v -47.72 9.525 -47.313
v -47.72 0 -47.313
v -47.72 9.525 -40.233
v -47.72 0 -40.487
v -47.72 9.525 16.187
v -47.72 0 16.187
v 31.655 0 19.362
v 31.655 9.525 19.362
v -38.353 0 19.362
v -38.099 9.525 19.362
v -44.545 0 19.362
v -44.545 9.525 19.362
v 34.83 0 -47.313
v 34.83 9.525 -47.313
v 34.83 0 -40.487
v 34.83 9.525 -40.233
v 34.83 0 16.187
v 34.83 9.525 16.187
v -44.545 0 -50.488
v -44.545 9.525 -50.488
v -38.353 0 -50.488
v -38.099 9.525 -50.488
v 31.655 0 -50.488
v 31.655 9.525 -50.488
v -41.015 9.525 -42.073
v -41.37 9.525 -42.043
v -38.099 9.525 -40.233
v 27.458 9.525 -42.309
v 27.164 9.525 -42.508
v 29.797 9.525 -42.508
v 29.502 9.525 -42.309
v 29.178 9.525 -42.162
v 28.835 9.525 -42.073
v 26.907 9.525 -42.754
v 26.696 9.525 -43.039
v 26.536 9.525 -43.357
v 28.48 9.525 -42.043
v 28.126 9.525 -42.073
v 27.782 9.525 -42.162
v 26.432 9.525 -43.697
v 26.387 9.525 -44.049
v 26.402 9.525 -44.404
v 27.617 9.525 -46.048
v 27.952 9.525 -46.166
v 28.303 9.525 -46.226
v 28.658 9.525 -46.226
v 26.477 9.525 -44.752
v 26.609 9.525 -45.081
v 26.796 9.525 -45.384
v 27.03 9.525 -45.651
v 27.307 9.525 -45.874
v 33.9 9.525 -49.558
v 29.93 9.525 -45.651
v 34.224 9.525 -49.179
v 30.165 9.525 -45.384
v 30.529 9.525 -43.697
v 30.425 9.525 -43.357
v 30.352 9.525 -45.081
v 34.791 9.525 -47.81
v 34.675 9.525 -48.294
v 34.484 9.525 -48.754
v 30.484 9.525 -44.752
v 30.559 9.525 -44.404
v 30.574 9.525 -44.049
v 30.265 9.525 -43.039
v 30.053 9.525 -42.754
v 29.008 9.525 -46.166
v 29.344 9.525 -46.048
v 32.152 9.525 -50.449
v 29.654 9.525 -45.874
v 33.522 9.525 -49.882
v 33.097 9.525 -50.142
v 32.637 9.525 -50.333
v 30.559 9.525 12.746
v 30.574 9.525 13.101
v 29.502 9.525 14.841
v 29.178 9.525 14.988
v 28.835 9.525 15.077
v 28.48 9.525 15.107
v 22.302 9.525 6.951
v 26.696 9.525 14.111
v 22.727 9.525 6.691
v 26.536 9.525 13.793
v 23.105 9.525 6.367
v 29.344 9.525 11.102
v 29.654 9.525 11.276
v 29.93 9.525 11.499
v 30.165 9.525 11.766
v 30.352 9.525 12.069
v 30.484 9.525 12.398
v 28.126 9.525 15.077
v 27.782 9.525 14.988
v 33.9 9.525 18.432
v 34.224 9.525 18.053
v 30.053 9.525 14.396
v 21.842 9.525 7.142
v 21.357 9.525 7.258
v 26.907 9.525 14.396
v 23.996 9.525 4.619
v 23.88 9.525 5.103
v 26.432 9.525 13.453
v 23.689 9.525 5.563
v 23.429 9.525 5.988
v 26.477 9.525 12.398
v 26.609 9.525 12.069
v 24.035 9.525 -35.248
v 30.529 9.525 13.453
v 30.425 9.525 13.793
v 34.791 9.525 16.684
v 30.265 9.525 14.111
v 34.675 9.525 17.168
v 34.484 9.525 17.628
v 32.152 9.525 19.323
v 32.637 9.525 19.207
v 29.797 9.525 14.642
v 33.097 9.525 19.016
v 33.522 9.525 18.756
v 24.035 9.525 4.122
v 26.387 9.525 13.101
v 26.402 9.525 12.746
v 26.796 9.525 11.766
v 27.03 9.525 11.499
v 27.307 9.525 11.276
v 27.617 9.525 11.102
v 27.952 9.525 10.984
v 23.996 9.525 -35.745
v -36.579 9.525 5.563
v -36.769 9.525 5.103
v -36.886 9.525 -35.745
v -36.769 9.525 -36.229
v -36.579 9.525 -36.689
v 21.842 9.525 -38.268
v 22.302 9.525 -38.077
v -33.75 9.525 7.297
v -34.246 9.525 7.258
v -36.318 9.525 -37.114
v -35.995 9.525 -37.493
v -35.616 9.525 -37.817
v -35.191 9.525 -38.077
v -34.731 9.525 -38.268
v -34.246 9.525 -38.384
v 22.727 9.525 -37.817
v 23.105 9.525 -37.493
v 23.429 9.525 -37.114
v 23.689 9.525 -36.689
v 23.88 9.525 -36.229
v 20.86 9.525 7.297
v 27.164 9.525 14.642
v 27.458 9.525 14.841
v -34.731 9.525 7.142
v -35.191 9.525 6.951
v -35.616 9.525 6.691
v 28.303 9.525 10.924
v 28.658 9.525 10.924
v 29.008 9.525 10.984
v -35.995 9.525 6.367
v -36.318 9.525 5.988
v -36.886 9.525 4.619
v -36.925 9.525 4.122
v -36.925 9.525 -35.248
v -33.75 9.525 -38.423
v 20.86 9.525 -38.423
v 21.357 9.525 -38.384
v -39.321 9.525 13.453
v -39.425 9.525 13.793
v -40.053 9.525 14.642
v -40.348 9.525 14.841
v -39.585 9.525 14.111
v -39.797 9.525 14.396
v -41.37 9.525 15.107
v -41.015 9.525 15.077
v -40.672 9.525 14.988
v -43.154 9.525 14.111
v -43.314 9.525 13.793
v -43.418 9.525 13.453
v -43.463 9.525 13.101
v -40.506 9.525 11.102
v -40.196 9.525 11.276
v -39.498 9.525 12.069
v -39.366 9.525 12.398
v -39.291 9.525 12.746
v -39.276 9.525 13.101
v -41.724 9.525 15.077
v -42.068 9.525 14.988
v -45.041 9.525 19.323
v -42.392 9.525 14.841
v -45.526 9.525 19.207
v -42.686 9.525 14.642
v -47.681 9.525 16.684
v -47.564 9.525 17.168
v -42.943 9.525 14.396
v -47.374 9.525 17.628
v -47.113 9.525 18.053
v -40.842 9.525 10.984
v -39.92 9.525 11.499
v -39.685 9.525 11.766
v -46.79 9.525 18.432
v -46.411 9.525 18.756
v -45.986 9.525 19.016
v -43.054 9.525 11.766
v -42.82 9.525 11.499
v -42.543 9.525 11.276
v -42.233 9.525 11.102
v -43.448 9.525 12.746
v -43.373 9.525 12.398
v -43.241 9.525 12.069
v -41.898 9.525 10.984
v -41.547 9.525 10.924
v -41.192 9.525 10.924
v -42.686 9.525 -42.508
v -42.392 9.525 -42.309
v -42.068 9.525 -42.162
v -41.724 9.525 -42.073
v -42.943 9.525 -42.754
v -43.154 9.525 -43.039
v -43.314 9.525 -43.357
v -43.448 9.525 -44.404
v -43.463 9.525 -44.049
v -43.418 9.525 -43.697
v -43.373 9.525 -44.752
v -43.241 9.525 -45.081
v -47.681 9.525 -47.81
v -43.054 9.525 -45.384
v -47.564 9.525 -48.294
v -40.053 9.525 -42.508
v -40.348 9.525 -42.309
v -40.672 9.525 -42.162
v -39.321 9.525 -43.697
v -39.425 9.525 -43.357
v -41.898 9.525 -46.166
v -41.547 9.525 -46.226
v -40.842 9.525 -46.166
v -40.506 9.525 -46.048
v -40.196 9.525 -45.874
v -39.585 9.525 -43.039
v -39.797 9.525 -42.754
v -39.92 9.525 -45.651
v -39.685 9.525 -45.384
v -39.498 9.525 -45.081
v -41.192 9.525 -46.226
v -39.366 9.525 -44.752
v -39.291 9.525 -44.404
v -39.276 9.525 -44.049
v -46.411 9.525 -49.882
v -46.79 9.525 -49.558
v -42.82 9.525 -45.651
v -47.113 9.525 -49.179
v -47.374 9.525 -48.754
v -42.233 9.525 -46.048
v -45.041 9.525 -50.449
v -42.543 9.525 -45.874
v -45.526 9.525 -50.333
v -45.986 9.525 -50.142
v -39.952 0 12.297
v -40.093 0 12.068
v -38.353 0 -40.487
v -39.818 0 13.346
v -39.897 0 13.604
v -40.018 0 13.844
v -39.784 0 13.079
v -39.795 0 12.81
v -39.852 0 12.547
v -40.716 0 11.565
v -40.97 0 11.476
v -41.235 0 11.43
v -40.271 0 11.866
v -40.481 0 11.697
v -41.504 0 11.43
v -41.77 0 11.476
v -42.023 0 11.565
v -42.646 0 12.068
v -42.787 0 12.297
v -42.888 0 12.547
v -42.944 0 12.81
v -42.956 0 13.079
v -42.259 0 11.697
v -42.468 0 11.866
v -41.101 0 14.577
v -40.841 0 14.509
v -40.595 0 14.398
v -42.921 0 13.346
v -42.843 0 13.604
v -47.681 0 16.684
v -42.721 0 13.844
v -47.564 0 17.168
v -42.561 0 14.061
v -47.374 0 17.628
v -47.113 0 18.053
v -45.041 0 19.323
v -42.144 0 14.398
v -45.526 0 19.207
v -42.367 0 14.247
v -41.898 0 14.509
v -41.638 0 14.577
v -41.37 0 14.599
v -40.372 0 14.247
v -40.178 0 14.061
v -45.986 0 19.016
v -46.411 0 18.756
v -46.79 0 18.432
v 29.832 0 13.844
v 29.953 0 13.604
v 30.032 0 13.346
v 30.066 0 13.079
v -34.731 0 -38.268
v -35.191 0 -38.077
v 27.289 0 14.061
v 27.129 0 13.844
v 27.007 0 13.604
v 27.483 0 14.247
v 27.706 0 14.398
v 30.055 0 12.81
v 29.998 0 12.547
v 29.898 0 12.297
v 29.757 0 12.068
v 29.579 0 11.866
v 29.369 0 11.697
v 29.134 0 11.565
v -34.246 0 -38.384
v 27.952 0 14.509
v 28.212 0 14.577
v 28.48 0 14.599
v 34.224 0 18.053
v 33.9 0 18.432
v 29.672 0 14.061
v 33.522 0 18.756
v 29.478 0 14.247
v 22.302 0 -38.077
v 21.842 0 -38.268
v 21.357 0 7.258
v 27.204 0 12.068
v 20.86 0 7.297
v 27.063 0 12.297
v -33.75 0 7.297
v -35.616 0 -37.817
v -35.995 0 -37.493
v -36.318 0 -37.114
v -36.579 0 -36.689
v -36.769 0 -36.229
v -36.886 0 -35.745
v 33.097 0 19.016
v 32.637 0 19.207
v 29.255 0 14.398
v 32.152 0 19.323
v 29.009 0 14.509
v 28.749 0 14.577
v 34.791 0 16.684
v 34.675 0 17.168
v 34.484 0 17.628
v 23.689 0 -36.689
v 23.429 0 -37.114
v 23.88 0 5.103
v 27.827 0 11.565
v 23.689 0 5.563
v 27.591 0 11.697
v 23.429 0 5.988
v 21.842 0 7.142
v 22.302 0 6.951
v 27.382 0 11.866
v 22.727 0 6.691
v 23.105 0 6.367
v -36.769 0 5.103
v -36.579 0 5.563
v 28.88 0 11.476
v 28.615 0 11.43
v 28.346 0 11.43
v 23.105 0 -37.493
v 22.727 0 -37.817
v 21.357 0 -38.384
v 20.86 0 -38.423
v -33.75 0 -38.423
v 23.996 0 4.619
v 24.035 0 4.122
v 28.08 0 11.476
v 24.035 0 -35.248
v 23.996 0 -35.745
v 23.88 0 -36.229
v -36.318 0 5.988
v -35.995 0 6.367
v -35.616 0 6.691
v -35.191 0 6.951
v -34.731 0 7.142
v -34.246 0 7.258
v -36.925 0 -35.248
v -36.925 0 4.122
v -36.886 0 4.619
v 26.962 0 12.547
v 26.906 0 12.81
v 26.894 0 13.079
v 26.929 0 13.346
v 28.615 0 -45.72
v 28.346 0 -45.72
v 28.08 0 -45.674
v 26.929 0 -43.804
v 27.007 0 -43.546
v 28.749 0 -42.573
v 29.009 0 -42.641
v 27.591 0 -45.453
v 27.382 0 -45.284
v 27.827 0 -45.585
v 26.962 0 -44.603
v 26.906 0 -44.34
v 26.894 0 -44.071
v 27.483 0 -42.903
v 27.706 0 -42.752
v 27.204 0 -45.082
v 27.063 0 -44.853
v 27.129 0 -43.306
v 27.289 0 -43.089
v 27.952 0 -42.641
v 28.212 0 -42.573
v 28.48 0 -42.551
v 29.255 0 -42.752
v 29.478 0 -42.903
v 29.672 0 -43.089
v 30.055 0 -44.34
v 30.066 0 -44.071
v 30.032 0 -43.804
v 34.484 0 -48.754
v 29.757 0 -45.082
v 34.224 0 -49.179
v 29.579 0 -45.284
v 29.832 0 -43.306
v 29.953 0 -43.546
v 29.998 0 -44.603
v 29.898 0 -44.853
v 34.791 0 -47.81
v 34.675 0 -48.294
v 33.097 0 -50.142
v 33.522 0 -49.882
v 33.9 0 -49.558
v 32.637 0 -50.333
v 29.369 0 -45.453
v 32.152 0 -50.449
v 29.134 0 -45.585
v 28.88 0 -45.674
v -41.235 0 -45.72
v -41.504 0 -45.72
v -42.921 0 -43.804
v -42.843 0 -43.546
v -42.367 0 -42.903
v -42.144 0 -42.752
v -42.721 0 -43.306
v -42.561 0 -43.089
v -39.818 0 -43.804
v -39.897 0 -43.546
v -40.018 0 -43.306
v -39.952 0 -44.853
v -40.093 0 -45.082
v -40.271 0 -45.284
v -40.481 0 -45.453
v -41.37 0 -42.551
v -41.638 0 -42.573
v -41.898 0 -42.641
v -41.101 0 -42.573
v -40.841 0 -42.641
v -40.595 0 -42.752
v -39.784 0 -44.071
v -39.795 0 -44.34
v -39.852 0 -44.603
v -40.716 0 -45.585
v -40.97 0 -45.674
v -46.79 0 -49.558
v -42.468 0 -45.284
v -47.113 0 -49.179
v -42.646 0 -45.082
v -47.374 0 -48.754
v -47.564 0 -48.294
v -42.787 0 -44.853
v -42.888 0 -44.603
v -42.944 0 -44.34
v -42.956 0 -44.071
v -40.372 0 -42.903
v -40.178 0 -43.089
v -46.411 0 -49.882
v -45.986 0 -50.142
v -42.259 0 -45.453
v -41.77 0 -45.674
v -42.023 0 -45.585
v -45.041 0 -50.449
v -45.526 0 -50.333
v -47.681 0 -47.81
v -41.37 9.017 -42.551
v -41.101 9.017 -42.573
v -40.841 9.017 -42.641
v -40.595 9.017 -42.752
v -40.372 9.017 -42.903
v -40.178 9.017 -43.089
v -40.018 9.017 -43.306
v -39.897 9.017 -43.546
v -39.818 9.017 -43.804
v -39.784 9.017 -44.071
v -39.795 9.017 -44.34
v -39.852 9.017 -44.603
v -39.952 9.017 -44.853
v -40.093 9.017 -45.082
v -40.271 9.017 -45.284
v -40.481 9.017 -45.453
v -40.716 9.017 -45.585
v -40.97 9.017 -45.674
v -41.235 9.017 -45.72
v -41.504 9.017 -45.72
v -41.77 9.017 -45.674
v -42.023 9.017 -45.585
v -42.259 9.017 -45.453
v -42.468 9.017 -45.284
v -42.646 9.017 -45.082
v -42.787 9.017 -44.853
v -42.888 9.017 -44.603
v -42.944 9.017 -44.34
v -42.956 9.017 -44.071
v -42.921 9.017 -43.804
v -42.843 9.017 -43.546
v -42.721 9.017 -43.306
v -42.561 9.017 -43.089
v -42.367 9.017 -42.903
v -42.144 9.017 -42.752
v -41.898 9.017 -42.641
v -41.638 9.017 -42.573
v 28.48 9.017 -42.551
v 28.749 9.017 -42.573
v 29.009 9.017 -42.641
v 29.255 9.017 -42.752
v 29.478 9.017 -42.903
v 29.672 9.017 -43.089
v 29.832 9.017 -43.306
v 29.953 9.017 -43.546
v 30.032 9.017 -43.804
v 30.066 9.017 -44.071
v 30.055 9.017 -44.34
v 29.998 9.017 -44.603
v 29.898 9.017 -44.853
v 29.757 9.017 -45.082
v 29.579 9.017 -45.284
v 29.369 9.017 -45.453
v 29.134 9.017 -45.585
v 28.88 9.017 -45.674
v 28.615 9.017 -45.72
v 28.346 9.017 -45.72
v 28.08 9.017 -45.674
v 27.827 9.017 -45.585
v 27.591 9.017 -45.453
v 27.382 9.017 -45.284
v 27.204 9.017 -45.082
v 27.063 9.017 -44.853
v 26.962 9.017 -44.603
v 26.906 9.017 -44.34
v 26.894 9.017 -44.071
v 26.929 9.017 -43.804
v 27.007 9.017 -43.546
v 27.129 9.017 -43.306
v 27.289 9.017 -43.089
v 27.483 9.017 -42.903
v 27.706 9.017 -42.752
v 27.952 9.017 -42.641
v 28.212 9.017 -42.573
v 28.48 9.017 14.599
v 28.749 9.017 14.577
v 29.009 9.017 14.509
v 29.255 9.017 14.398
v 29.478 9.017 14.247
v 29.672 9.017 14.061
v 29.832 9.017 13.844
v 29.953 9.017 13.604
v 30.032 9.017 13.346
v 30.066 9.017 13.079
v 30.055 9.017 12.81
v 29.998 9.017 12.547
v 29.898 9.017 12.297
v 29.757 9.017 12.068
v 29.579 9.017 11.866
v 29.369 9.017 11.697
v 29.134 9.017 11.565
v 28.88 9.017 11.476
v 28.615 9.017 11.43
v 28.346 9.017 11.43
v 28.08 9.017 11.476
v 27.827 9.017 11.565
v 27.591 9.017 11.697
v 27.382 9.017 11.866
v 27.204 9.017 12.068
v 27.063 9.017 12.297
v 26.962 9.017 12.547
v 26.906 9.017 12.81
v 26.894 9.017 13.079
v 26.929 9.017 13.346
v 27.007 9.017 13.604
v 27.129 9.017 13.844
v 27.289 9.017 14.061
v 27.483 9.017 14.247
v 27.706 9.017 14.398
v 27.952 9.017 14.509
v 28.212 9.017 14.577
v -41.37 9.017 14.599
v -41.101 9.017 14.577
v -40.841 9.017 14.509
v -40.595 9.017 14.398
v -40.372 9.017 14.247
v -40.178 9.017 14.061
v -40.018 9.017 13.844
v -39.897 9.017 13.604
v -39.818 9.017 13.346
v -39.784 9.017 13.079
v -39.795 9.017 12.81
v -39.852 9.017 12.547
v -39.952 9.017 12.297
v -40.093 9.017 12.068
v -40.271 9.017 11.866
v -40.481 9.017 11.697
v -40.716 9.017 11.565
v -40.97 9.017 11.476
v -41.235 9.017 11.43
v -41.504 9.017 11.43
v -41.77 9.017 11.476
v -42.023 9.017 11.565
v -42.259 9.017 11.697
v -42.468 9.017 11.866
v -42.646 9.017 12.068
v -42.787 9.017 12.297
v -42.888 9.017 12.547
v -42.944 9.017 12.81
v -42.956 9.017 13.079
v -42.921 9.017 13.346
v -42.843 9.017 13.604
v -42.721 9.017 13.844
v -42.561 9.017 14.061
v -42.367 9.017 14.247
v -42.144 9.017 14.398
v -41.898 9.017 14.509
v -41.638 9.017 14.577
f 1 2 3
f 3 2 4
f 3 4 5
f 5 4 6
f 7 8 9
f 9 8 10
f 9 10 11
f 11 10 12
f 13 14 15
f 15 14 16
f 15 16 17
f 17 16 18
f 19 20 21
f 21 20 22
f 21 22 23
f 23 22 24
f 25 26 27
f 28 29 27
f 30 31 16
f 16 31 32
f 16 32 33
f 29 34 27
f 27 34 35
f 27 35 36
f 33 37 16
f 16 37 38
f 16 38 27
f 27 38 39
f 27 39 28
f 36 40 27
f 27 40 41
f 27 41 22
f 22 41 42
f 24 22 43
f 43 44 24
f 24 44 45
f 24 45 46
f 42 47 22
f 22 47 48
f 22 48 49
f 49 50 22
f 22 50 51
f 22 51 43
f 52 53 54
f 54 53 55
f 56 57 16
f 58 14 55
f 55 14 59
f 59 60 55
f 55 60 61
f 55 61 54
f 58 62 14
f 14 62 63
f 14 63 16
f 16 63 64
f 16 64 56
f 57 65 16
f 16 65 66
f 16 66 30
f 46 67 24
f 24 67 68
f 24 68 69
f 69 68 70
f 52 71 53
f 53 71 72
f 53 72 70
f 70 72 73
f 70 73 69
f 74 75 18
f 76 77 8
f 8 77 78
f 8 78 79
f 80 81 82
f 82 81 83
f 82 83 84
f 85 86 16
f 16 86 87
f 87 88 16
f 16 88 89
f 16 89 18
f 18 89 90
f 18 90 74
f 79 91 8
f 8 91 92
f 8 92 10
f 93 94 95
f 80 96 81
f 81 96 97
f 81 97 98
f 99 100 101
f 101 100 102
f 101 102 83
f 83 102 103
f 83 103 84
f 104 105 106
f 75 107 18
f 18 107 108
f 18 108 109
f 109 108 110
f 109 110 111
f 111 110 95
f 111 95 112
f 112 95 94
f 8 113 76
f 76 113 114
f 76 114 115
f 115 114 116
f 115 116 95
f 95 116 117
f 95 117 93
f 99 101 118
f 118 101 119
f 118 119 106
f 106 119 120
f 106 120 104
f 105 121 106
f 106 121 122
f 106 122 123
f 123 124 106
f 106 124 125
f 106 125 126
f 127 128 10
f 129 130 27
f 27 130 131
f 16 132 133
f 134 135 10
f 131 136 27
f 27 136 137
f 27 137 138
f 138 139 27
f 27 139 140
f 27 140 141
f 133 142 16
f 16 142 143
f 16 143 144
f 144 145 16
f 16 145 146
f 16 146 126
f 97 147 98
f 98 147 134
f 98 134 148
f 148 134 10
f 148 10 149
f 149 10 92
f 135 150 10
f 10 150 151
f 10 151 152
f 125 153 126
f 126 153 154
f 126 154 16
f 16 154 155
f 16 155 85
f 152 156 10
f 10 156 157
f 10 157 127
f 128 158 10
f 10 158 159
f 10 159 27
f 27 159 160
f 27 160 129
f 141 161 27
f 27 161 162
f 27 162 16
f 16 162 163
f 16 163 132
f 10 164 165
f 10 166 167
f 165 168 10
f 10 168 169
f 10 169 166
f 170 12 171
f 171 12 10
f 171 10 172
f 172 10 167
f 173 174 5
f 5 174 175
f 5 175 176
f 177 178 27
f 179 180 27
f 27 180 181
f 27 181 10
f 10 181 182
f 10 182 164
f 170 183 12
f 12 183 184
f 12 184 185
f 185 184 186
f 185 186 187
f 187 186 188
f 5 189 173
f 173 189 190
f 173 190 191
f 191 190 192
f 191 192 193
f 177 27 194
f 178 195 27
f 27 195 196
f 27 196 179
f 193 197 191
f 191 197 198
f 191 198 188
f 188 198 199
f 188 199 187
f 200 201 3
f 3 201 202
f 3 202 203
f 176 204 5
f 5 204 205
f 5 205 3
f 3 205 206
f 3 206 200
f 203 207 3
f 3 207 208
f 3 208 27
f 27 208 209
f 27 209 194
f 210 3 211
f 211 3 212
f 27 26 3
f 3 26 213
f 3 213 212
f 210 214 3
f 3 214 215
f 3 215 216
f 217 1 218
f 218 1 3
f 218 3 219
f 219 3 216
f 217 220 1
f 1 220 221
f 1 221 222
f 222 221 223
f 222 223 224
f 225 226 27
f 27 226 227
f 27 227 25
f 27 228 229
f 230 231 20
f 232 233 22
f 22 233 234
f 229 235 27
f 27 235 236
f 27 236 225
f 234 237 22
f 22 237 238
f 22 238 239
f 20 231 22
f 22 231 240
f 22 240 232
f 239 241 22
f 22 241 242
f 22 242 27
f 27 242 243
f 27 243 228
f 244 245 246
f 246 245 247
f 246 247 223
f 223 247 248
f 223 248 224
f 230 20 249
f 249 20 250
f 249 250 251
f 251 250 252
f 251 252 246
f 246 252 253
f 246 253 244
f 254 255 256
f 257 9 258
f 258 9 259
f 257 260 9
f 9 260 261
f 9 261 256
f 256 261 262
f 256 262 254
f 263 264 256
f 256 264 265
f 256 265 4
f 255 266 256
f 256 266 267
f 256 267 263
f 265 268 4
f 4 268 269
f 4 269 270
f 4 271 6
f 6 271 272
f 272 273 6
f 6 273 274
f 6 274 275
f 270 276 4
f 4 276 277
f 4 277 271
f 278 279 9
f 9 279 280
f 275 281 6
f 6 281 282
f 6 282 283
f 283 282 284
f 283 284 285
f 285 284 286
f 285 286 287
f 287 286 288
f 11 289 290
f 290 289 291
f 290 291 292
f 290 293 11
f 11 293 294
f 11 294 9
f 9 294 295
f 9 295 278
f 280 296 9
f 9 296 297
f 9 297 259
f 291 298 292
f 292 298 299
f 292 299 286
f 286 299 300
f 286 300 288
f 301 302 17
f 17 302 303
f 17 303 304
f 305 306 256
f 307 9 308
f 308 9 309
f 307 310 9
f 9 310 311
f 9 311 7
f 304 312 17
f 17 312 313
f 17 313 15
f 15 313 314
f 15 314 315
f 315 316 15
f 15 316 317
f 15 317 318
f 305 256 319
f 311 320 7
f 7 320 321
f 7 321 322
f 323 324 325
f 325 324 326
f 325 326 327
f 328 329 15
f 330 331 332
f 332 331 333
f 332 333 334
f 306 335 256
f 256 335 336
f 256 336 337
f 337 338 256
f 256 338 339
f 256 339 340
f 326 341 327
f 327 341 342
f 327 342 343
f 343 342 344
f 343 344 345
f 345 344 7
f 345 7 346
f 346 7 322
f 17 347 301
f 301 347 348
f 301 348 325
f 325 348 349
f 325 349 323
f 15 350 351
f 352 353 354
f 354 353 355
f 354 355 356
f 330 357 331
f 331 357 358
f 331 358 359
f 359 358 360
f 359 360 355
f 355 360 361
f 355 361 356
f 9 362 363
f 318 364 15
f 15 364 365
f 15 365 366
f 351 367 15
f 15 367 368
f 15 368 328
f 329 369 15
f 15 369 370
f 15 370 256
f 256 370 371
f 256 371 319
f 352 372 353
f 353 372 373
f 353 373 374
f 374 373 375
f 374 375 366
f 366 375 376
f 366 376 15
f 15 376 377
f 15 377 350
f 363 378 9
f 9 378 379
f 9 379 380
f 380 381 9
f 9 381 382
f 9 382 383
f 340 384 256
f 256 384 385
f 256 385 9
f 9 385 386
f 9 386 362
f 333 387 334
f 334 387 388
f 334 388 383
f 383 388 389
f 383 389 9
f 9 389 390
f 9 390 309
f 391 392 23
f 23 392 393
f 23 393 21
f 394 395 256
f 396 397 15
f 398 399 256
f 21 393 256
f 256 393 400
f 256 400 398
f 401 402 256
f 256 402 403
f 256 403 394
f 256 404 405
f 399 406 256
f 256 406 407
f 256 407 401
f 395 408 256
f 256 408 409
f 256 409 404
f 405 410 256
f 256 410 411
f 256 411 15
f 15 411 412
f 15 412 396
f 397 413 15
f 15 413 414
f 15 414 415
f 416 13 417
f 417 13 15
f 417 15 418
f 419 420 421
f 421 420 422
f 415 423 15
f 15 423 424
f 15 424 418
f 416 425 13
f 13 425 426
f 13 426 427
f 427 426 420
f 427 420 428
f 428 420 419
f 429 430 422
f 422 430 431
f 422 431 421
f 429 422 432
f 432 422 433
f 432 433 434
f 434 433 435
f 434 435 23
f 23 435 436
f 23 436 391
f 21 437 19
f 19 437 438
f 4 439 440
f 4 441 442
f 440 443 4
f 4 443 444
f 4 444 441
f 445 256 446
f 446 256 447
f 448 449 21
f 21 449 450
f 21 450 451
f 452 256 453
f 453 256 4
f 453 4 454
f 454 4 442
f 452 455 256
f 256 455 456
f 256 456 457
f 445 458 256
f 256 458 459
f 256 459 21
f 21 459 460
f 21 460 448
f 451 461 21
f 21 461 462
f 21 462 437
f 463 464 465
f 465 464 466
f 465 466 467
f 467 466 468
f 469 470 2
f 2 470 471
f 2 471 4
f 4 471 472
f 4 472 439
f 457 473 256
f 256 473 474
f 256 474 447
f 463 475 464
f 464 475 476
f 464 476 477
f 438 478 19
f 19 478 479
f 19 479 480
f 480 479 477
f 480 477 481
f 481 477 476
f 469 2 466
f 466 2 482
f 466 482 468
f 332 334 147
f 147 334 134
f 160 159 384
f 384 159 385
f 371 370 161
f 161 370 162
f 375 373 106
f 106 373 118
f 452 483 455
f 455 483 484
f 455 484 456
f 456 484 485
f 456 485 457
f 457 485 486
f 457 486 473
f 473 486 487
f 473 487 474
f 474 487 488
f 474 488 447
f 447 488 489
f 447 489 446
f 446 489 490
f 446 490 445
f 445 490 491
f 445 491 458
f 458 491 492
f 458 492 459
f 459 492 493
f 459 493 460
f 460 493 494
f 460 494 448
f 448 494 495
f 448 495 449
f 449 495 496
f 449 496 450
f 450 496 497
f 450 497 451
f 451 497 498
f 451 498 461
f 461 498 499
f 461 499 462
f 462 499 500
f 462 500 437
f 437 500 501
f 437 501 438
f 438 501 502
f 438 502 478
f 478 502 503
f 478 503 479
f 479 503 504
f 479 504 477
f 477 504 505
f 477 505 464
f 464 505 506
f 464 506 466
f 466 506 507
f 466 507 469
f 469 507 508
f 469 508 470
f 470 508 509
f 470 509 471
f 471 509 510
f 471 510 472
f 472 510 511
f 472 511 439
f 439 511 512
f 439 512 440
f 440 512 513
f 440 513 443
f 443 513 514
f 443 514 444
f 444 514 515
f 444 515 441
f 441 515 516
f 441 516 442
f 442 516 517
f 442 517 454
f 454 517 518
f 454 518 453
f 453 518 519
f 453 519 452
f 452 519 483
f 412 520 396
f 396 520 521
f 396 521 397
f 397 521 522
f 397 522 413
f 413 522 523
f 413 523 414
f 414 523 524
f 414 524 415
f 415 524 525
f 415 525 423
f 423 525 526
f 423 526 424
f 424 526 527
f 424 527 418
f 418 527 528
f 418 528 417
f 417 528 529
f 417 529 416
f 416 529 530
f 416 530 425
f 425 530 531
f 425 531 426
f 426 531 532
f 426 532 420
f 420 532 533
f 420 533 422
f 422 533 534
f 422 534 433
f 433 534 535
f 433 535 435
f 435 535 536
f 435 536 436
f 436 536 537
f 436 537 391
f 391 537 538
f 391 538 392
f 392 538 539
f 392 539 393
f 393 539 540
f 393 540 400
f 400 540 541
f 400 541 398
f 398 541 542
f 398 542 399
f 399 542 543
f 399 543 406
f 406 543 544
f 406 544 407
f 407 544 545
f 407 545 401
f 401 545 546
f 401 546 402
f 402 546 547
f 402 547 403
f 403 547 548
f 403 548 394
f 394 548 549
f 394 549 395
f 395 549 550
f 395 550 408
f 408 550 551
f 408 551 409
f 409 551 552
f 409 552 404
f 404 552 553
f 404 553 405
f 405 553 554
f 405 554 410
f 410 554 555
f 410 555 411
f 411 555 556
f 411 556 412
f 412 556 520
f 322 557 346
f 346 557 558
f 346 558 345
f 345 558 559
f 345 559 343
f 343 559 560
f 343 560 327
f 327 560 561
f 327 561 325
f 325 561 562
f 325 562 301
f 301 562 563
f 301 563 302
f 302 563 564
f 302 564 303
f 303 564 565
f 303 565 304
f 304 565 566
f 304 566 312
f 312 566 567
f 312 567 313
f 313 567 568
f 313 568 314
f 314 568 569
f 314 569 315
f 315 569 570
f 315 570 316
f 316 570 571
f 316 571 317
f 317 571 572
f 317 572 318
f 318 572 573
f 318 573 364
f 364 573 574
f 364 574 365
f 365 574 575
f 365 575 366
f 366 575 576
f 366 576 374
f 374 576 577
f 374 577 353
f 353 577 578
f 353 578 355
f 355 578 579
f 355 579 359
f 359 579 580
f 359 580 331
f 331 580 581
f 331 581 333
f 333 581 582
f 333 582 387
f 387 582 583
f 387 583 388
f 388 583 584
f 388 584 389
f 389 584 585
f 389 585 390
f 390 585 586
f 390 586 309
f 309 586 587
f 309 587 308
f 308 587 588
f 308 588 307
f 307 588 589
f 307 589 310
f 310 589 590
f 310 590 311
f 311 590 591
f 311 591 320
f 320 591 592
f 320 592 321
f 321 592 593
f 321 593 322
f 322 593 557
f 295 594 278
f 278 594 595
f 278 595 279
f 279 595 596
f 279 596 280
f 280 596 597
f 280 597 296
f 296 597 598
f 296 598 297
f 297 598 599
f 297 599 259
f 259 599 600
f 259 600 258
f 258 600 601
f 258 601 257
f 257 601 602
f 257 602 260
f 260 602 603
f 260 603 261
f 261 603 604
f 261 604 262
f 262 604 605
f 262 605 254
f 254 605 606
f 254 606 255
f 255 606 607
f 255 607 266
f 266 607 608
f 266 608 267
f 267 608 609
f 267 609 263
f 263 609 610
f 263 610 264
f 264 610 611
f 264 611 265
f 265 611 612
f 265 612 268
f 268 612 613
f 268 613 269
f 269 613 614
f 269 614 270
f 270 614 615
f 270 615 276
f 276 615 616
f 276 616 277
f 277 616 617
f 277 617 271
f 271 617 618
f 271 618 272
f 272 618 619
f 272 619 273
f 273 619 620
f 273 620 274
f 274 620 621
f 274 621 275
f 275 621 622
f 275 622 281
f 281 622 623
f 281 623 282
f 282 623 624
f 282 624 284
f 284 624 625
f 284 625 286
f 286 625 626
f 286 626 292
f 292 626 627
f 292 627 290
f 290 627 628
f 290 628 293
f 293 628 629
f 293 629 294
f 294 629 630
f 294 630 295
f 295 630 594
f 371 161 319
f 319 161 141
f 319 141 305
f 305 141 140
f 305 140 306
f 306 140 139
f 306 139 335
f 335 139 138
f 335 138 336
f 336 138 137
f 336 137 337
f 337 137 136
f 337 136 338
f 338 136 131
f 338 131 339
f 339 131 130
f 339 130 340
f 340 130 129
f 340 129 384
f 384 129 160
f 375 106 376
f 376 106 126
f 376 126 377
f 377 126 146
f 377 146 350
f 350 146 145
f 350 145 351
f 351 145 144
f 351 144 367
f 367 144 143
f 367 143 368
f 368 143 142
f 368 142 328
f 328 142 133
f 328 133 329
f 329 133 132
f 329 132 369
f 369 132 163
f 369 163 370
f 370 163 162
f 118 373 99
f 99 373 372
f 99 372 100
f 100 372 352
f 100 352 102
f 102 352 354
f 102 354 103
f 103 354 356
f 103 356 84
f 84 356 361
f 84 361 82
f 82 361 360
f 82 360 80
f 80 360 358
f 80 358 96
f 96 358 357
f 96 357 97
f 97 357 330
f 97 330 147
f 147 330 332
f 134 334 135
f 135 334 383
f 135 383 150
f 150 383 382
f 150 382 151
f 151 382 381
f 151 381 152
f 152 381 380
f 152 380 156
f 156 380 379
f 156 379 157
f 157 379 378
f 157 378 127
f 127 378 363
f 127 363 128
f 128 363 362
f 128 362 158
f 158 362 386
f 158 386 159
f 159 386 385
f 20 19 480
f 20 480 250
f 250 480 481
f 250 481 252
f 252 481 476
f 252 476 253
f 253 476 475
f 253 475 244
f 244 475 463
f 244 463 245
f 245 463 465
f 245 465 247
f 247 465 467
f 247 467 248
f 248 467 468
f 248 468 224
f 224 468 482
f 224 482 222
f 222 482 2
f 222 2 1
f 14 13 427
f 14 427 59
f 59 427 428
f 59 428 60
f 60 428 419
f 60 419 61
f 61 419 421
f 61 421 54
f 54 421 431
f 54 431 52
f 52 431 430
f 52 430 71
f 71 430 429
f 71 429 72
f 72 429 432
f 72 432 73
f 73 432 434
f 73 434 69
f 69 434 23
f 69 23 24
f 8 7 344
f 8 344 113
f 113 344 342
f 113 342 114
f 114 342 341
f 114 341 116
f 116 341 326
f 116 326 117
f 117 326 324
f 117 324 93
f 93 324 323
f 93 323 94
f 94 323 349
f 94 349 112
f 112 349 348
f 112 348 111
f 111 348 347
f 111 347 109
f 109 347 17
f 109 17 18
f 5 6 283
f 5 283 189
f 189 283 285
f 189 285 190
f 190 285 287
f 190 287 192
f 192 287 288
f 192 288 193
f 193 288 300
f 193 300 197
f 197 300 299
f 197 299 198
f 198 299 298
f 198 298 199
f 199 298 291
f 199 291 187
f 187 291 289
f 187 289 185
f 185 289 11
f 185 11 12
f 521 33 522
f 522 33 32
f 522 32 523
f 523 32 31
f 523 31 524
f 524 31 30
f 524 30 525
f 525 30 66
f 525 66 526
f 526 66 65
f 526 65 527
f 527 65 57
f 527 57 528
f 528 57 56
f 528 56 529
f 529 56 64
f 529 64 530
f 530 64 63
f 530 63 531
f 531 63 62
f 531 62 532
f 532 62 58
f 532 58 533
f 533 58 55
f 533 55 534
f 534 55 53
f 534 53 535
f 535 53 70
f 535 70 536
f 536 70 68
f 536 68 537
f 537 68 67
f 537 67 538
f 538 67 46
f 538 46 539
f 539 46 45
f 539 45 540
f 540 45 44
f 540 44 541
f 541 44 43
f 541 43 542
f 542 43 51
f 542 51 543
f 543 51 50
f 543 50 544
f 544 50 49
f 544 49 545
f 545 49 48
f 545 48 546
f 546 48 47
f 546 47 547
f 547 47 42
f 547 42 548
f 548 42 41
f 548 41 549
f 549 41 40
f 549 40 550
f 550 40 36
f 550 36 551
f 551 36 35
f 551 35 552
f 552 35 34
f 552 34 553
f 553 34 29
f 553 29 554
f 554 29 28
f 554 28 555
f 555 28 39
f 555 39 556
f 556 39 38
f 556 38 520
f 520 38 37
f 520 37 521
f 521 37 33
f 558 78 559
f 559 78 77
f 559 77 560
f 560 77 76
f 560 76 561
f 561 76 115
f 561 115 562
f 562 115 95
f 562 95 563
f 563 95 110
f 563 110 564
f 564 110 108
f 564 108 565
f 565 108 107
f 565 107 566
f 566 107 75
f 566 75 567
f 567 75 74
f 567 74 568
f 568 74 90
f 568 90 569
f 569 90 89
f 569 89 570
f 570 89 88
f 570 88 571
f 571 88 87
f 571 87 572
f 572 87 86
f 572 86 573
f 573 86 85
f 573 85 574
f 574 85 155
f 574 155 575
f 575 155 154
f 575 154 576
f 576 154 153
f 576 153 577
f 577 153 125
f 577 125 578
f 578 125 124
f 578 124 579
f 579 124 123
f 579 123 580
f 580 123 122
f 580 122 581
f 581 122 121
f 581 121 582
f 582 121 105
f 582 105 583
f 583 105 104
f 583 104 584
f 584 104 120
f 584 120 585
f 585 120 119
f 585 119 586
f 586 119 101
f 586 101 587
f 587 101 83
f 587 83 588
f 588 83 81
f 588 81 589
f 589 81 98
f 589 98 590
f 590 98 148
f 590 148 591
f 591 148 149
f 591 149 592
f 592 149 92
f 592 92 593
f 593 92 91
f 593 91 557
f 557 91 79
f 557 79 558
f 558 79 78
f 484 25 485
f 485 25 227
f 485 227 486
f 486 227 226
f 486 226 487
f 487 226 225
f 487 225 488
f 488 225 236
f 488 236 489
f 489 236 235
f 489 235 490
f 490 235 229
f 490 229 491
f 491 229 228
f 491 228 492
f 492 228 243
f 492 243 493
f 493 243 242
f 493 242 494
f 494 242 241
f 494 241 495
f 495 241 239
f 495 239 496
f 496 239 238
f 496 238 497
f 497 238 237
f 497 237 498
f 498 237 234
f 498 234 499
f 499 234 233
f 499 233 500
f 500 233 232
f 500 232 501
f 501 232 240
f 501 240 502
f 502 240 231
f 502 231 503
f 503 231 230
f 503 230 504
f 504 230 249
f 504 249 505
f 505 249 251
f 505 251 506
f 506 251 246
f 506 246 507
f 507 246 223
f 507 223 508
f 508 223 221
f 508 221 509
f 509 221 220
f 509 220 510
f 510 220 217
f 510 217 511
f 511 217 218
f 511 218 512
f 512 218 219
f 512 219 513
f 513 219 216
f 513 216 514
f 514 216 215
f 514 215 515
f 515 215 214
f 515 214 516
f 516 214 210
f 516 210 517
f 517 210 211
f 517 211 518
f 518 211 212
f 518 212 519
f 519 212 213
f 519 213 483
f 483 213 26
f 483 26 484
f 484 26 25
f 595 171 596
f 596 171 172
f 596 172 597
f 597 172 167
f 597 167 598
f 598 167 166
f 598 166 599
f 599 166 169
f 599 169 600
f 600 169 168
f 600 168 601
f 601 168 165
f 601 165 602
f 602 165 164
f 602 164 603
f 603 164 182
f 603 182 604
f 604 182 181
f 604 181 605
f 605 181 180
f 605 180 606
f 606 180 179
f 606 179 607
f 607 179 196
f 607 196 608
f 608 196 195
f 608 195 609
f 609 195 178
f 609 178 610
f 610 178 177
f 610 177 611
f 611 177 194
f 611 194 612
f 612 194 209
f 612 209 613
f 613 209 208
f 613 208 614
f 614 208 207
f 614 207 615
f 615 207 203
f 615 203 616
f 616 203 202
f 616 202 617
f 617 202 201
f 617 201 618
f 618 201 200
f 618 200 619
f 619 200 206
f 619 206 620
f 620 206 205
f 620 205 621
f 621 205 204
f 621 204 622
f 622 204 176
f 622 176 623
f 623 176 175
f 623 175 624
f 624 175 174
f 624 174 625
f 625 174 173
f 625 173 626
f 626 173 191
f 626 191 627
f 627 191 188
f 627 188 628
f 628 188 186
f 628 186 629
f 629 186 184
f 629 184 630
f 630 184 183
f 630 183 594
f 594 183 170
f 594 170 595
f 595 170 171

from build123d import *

# Parameters (mm, degrees)
SKETCH1_W           = 82.55
SKETCH1_H           = 69.85
BOSS_EXTRUDE1_DEPTH = 9.525
SKETCH2_W           = 30.48
SKETCH2_H           = 22.86
CUT_EXTRUDE1_DEPTH  = 71.120815038
SKETCH5_R           = 1.5875
CUT_EXTRUDE2_DEPTH  = 71.120815038
FILLET1_R           = 3.175
CHAMFER1_SIZE       = 0.508


with BuildPart() as part:
    # Sketch1 → Boss-Extrude1 (new body)
    with BuildSketch(Plane(origin=(0, 0, 0), x_dir=(1, 0, 0), z_dir=(0, 1, 0))):
        with Locations((-6.44460094, 15.563045741)):
            Rectangle(SKETCH1_W, SKETCH1_H)
    extrude(amount=BOSS_EXTRUDE1_DEPTH)

    # Sketch2 → Cut-Extrude1 (cut, through all)
    with BuildSketch(Plane(origin=(0, 9.525, 0), x_dir=(1, 0, 0), z_dir=(0, 1, 0))):
        with Locations((-21.68460094, 26.993045741)):
            Rectangle(SKETCH2_W, SKETCH2_H)
        with Locations((8.79539906, 26.993045741)):
            Rectangle(SKETCH2_W, SKETCH2_H)
        with Locations((8.79539906, 4.133045741)):
            Rectangle(SKETCH2_W, SKETCH2_H)
        with Locations((-21.68460094, 4.133045741)):
            Rectangle(SKETCH2_W, SKETCH2_H)
    extrude(amount=-CUT_EXTRUDE1_DEPTH, mode=Mode.SUBTRACT)

    # Sketch5 → Cut-Extrude2 (cut, through all)
    with BuildSketch(Plane(origin=(0, 9.525, 0), x_dir=(1, 0, 0), z_dir=(0, 1, 0))):
        with Locations(Location((-41.36960094, 44.138045741, 0), (0, 0, 270))):
            Circle(SKETCH5_R)
        with Locations(Location((28.48039906, 44.138045741, 0), (0, 0, 270))):
            Circle(SKETCH5_R)
        with Locations(Location((28.48039906, -13.011954259, 0), (0, 0, 270))):
            Circle(SKETCH5_R)
        with Locations(Location((-41.36960094, -13.011954259, 0), (0, 0, 270))):
            Circle(SKETCH5_R)
    extrude(amount=-CUT_EXTRUDE2_DEPTH, mode=Mode.SUBTRACT)

    # Fillet1
    fillet1_edges = [part.edges().sort_by_distance(p)[0] for p in [
        (24.03539906, 4.7625, 7.296954259),
        (-36.92460094, 4.7625, 7.296954259),
        (-36.92460094, 4.7625, -38.423045741),
        (24.03539906, 4.7625, -38.423045741),
        (-47.71960094, 4.7625, -50.488045741),
        (34.83039906, 4.7625, -50.488045741),
        (34.83039906, 4.7625, 19.361954259),
        (-47.71960094, 4.7625, 19.361954259),
    ]]
    fillet(fillet1_edges, radius=FILLET1_R)

    # Chamfer1
    chamfer1_edges = [part.edges().sort_by_distance(p)[0] for p in [
        (-41.36960094, 9.525, 11.424454259),
        (28.48039906, 9.525, 11.424454259),
        (28.48039906, 9.525, -45.725545741),
        (-41.36960094, 9.525, -45.725545741),
    ]]
    chamfer(chamfer1_edges, length=CHAMFER1_SIZE)


solid = part.part
